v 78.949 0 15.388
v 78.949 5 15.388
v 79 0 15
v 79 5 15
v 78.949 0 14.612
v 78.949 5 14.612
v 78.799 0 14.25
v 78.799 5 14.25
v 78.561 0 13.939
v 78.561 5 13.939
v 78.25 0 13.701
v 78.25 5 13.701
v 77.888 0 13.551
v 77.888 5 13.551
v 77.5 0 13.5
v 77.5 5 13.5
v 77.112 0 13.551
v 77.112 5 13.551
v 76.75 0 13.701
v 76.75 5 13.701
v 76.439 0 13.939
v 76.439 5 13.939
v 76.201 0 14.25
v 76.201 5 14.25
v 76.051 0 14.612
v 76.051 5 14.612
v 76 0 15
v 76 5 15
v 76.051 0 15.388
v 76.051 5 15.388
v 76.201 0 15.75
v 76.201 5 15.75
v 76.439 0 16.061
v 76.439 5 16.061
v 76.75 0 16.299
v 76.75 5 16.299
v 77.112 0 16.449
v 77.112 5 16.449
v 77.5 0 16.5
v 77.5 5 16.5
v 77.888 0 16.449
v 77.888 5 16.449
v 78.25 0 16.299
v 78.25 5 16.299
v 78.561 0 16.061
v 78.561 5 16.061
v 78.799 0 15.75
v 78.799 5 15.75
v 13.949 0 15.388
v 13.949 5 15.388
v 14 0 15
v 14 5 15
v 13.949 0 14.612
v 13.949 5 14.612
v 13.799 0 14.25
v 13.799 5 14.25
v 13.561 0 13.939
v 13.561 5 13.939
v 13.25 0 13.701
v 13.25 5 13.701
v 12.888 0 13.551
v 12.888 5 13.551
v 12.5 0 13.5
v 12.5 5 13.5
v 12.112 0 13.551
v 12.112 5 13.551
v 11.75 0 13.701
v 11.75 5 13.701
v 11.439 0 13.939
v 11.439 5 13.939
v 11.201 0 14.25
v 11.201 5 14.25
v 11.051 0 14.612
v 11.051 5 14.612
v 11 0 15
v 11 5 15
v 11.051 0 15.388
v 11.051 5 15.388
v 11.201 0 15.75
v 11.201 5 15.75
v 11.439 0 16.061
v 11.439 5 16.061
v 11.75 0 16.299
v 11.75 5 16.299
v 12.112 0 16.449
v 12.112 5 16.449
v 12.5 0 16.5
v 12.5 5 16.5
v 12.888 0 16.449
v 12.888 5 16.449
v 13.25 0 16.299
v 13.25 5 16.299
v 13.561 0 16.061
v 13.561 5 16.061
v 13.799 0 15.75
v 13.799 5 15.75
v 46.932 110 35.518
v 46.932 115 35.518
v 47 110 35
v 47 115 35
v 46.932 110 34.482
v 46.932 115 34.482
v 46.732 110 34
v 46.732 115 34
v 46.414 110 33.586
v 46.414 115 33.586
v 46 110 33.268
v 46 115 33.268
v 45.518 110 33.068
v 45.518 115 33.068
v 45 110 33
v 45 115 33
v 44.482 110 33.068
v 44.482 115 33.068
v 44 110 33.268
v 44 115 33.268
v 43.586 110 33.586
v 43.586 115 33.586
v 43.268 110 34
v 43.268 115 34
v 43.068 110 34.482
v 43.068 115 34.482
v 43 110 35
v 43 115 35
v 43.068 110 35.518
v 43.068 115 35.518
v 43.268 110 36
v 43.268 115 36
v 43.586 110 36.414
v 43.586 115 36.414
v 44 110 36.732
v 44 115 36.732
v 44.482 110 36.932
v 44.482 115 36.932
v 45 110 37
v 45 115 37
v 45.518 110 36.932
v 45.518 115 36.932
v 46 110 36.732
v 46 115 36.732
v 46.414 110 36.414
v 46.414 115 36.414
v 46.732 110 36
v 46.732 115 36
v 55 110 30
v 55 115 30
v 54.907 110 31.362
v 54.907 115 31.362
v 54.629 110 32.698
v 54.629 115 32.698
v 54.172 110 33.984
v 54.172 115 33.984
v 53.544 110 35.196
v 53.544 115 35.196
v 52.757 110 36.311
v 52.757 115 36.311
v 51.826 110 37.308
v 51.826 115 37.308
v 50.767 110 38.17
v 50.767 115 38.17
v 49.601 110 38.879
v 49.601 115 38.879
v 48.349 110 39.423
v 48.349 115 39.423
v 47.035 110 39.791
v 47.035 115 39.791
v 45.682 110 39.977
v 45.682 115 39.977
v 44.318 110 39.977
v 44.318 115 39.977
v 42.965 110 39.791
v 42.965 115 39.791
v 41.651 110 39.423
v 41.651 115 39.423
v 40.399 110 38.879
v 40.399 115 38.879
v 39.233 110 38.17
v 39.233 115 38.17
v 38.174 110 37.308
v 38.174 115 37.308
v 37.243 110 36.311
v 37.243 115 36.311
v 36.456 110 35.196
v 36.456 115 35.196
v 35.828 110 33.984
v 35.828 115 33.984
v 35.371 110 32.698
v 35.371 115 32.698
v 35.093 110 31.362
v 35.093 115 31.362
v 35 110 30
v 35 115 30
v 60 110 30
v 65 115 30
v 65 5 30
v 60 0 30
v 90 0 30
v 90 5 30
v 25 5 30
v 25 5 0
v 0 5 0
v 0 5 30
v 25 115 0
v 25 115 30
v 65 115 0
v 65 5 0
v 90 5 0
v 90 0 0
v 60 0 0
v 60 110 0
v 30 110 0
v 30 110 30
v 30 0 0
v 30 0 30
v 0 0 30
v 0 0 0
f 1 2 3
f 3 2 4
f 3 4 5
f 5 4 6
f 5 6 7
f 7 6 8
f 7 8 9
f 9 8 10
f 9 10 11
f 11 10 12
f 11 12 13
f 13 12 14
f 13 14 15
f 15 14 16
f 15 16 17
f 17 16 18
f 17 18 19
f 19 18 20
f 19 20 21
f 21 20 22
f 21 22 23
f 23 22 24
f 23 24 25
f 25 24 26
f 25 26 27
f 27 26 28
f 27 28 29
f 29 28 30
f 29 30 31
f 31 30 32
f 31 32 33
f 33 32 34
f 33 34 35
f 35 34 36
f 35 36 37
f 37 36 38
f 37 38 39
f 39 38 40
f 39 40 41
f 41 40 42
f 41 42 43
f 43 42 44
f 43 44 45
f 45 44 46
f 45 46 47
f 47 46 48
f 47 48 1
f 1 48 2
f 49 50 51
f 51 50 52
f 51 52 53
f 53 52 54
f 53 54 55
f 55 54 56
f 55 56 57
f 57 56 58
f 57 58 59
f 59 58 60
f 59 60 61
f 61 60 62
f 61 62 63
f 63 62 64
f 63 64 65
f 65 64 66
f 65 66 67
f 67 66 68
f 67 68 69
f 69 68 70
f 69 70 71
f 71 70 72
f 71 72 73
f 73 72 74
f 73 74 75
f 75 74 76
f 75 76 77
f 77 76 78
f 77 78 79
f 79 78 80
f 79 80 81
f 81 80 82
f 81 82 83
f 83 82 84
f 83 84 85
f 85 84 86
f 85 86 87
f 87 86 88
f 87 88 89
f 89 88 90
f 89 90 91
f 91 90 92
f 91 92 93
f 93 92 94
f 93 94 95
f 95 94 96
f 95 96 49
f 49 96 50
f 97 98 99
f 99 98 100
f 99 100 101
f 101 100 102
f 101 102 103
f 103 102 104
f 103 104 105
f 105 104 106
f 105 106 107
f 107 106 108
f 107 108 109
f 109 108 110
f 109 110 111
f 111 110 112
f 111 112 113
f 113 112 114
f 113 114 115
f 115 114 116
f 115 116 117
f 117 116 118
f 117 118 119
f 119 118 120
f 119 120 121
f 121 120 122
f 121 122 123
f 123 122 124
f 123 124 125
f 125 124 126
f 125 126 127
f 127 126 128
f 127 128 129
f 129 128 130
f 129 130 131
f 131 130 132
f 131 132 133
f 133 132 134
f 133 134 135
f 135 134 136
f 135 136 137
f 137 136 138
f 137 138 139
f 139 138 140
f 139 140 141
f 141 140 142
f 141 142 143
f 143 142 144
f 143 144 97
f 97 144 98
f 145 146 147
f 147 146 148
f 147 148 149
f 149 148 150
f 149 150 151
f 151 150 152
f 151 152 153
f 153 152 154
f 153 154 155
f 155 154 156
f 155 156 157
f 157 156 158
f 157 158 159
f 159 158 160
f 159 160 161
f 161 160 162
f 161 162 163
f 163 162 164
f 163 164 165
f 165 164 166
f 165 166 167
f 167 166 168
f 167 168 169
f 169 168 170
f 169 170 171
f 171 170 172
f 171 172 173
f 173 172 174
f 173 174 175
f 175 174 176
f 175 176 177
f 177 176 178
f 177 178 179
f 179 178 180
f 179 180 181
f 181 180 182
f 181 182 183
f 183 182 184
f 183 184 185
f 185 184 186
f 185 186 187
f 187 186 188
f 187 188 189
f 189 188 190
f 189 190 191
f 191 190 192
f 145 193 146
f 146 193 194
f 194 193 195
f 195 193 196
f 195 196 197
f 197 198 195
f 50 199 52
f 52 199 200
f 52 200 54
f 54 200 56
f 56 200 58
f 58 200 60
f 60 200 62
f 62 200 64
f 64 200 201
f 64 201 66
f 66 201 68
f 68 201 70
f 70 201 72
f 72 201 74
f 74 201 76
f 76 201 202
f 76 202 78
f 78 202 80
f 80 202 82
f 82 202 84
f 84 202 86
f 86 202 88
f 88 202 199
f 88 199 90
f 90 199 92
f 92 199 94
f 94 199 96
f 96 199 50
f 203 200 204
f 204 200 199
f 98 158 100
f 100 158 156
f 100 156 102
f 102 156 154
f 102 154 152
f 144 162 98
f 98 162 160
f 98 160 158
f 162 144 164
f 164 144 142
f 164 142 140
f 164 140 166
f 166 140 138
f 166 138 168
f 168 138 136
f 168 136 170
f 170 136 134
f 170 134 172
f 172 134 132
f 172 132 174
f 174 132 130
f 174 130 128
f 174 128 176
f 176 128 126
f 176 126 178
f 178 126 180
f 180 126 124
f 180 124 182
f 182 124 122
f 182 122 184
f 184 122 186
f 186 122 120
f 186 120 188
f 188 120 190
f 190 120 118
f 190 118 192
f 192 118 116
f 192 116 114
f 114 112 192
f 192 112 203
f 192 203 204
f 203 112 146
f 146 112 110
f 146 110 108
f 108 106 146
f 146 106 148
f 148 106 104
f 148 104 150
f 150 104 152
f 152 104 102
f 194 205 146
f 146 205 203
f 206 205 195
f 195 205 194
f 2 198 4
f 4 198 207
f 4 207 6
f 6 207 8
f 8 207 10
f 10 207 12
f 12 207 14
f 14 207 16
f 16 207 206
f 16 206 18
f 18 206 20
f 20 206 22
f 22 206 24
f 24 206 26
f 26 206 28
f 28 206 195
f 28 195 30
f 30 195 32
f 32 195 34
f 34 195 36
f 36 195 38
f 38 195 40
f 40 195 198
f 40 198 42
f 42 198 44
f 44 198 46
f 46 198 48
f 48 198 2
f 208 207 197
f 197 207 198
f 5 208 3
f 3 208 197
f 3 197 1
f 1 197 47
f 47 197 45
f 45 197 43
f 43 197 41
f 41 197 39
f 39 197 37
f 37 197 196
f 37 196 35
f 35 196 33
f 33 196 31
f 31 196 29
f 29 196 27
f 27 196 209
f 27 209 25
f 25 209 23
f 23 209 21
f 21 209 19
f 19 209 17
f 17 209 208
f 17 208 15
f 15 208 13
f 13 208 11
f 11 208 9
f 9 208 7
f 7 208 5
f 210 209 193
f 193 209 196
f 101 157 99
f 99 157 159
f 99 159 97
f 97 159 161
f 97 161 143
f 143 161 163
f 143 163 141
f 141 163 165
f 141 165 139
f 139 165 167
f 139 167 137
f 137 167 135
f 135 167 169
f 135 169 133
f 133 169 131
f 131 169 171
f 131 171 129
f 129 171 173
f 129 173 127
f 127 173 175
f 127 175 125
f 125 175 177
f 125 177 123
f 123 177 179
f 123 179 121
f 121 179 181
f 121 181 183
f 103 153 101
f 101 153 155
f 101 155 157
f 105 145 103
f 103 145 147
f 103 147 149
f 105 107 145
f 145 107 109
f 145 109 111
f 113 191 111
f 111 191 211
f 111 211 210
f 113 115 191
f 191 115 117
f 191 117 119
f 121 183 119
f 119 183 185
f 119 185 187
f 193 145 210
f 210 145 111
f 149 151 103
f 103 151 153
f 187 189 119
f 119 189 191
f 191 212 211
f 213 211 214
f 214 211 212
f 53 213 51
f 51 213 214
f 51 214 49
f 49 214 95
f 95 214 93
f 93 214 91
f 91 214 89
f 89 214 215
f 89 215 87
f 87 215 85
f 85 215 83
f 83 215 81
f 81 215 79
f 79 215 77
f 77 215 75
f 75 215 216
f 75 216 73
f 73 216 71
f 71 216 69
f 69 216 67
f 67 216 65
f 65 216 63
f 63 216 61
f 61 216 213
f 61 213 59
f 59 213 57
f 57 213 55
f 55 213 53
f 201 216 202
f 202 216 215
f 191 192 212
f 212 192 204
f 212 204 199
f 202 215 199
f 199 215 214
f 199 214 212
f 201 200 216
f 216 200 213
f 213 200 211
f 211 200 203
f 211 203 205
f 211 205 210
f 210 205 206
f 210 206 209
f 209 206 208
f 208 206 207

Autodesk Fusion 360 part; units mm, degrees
sketch "Boceto1" plane through (0, 0, 0) normal (0, 0, 1) x (1, 0, 0)
  line L0 (0, 0) -> (30, 0)
  line L1 (30, 0) -> (30, 110)
  line L2 (30, 110) -> (60, 110)
  line L3 (60, 110) -> (60, 0)
  line L4 (60, 0) -> (90, 0)
  line L5 (90, 0) -> (90, 5)
  line L6 (90, 5) -> (65, 5)
  line L7 (65, 5) -> (65, 115)
  line L8 (65, 115) -> (25, 115)
  line L9 (25, 115) -> (25, 5)
  line L10 (25, 5) -> (0, 5)
  line L11 (0, 5) -> (0, 0)
  dimension "d1" = 110
  dimension "d2" = 5
  dimension "d3" = 25
  dimension "d4" = 110
  dimension "d5" = 40
  dimension "d6" = 110
extrude "Extruir1" add sketch "Boceto1" along normal blind 30
sketch "Boceto2" plane through (0, 115, 0) normal (0, 1, 0) x (-1, 0, 0)
  line L0 (-65, 0) -> (-25, 0)
  line L1 (-25, 0) -> (-25, 30)
  line L2 (-25, 30) -> (-65, 30)
  line L3 (-65, 30) -> (-65, 0)
  circle A0 centre (-45, 30) radius 10
extrude "Extruir2" add sketch "Boceto2" against normal blind 5 contours L2 A0 picked at (-42.135, 33.3571)
sketch "Boceto3" plane through (0, 115, 0) normal (0, 1, 0) x (-1, 0, 0)
  line L0 (-65, 0) -> (-25, 0)
  line L1 (-25, 0) -> (-25, 30)
  line L2 (-25, 30) -> (-35, 30)
  arc A0 (-35, 30) -> (-55, 30) centre (-45, 30) ccw
  line L3 (-55, 30) -> (-65, 30)
  line L4 (-65, 30) -> (-65, 0)
  line L5 (-45, 40) -> (-45, 35)
  circle A1 centre (-45, 35) radius 2
  dimension "d11" = 5
  dimension "d12" = 4
extrude "Extruir3" cut sketch "Boceto3" against normal blind 5 contours A1
sketch "Boceto4" plane through (0, 5, 0) normal (0, 1, 0) x (-1, 0, 0)
  line L0 (-25, 0) -> (0, 0)
  line L1 (0, 0) -> (0, 30)
  line L2 (0, 30) -> (-25, 30)
  line L3 (-25, 30) -> (-25, 0)
  line L4 (-25, 30) -> (0, 0)
  line L5 (0, 30) -> (-25, 0)
  line L6 (-65, 0) -> (-90, 30)
  line L7 (-90, 30) -> (-90, 0)
  line L8 (-90, 0) -> (-65, 30)
  circle A0 centre (-77.5, 15) radius 1.5
  circle A1 centre (-12.5, 15) radius 1.5
  dimension "d15" = 3
  dimension "d16" = 3
extrude "Extruir4" cut sketch "Boceto4" against normal blind 5 contours L4 L5 A1 | L4 L5 A1 | L4 L5 A1 | L4 L5 A1 | L6 L8 A0 | L6 L8 A0 | L6 L8 A0 | L6 L8 A0
